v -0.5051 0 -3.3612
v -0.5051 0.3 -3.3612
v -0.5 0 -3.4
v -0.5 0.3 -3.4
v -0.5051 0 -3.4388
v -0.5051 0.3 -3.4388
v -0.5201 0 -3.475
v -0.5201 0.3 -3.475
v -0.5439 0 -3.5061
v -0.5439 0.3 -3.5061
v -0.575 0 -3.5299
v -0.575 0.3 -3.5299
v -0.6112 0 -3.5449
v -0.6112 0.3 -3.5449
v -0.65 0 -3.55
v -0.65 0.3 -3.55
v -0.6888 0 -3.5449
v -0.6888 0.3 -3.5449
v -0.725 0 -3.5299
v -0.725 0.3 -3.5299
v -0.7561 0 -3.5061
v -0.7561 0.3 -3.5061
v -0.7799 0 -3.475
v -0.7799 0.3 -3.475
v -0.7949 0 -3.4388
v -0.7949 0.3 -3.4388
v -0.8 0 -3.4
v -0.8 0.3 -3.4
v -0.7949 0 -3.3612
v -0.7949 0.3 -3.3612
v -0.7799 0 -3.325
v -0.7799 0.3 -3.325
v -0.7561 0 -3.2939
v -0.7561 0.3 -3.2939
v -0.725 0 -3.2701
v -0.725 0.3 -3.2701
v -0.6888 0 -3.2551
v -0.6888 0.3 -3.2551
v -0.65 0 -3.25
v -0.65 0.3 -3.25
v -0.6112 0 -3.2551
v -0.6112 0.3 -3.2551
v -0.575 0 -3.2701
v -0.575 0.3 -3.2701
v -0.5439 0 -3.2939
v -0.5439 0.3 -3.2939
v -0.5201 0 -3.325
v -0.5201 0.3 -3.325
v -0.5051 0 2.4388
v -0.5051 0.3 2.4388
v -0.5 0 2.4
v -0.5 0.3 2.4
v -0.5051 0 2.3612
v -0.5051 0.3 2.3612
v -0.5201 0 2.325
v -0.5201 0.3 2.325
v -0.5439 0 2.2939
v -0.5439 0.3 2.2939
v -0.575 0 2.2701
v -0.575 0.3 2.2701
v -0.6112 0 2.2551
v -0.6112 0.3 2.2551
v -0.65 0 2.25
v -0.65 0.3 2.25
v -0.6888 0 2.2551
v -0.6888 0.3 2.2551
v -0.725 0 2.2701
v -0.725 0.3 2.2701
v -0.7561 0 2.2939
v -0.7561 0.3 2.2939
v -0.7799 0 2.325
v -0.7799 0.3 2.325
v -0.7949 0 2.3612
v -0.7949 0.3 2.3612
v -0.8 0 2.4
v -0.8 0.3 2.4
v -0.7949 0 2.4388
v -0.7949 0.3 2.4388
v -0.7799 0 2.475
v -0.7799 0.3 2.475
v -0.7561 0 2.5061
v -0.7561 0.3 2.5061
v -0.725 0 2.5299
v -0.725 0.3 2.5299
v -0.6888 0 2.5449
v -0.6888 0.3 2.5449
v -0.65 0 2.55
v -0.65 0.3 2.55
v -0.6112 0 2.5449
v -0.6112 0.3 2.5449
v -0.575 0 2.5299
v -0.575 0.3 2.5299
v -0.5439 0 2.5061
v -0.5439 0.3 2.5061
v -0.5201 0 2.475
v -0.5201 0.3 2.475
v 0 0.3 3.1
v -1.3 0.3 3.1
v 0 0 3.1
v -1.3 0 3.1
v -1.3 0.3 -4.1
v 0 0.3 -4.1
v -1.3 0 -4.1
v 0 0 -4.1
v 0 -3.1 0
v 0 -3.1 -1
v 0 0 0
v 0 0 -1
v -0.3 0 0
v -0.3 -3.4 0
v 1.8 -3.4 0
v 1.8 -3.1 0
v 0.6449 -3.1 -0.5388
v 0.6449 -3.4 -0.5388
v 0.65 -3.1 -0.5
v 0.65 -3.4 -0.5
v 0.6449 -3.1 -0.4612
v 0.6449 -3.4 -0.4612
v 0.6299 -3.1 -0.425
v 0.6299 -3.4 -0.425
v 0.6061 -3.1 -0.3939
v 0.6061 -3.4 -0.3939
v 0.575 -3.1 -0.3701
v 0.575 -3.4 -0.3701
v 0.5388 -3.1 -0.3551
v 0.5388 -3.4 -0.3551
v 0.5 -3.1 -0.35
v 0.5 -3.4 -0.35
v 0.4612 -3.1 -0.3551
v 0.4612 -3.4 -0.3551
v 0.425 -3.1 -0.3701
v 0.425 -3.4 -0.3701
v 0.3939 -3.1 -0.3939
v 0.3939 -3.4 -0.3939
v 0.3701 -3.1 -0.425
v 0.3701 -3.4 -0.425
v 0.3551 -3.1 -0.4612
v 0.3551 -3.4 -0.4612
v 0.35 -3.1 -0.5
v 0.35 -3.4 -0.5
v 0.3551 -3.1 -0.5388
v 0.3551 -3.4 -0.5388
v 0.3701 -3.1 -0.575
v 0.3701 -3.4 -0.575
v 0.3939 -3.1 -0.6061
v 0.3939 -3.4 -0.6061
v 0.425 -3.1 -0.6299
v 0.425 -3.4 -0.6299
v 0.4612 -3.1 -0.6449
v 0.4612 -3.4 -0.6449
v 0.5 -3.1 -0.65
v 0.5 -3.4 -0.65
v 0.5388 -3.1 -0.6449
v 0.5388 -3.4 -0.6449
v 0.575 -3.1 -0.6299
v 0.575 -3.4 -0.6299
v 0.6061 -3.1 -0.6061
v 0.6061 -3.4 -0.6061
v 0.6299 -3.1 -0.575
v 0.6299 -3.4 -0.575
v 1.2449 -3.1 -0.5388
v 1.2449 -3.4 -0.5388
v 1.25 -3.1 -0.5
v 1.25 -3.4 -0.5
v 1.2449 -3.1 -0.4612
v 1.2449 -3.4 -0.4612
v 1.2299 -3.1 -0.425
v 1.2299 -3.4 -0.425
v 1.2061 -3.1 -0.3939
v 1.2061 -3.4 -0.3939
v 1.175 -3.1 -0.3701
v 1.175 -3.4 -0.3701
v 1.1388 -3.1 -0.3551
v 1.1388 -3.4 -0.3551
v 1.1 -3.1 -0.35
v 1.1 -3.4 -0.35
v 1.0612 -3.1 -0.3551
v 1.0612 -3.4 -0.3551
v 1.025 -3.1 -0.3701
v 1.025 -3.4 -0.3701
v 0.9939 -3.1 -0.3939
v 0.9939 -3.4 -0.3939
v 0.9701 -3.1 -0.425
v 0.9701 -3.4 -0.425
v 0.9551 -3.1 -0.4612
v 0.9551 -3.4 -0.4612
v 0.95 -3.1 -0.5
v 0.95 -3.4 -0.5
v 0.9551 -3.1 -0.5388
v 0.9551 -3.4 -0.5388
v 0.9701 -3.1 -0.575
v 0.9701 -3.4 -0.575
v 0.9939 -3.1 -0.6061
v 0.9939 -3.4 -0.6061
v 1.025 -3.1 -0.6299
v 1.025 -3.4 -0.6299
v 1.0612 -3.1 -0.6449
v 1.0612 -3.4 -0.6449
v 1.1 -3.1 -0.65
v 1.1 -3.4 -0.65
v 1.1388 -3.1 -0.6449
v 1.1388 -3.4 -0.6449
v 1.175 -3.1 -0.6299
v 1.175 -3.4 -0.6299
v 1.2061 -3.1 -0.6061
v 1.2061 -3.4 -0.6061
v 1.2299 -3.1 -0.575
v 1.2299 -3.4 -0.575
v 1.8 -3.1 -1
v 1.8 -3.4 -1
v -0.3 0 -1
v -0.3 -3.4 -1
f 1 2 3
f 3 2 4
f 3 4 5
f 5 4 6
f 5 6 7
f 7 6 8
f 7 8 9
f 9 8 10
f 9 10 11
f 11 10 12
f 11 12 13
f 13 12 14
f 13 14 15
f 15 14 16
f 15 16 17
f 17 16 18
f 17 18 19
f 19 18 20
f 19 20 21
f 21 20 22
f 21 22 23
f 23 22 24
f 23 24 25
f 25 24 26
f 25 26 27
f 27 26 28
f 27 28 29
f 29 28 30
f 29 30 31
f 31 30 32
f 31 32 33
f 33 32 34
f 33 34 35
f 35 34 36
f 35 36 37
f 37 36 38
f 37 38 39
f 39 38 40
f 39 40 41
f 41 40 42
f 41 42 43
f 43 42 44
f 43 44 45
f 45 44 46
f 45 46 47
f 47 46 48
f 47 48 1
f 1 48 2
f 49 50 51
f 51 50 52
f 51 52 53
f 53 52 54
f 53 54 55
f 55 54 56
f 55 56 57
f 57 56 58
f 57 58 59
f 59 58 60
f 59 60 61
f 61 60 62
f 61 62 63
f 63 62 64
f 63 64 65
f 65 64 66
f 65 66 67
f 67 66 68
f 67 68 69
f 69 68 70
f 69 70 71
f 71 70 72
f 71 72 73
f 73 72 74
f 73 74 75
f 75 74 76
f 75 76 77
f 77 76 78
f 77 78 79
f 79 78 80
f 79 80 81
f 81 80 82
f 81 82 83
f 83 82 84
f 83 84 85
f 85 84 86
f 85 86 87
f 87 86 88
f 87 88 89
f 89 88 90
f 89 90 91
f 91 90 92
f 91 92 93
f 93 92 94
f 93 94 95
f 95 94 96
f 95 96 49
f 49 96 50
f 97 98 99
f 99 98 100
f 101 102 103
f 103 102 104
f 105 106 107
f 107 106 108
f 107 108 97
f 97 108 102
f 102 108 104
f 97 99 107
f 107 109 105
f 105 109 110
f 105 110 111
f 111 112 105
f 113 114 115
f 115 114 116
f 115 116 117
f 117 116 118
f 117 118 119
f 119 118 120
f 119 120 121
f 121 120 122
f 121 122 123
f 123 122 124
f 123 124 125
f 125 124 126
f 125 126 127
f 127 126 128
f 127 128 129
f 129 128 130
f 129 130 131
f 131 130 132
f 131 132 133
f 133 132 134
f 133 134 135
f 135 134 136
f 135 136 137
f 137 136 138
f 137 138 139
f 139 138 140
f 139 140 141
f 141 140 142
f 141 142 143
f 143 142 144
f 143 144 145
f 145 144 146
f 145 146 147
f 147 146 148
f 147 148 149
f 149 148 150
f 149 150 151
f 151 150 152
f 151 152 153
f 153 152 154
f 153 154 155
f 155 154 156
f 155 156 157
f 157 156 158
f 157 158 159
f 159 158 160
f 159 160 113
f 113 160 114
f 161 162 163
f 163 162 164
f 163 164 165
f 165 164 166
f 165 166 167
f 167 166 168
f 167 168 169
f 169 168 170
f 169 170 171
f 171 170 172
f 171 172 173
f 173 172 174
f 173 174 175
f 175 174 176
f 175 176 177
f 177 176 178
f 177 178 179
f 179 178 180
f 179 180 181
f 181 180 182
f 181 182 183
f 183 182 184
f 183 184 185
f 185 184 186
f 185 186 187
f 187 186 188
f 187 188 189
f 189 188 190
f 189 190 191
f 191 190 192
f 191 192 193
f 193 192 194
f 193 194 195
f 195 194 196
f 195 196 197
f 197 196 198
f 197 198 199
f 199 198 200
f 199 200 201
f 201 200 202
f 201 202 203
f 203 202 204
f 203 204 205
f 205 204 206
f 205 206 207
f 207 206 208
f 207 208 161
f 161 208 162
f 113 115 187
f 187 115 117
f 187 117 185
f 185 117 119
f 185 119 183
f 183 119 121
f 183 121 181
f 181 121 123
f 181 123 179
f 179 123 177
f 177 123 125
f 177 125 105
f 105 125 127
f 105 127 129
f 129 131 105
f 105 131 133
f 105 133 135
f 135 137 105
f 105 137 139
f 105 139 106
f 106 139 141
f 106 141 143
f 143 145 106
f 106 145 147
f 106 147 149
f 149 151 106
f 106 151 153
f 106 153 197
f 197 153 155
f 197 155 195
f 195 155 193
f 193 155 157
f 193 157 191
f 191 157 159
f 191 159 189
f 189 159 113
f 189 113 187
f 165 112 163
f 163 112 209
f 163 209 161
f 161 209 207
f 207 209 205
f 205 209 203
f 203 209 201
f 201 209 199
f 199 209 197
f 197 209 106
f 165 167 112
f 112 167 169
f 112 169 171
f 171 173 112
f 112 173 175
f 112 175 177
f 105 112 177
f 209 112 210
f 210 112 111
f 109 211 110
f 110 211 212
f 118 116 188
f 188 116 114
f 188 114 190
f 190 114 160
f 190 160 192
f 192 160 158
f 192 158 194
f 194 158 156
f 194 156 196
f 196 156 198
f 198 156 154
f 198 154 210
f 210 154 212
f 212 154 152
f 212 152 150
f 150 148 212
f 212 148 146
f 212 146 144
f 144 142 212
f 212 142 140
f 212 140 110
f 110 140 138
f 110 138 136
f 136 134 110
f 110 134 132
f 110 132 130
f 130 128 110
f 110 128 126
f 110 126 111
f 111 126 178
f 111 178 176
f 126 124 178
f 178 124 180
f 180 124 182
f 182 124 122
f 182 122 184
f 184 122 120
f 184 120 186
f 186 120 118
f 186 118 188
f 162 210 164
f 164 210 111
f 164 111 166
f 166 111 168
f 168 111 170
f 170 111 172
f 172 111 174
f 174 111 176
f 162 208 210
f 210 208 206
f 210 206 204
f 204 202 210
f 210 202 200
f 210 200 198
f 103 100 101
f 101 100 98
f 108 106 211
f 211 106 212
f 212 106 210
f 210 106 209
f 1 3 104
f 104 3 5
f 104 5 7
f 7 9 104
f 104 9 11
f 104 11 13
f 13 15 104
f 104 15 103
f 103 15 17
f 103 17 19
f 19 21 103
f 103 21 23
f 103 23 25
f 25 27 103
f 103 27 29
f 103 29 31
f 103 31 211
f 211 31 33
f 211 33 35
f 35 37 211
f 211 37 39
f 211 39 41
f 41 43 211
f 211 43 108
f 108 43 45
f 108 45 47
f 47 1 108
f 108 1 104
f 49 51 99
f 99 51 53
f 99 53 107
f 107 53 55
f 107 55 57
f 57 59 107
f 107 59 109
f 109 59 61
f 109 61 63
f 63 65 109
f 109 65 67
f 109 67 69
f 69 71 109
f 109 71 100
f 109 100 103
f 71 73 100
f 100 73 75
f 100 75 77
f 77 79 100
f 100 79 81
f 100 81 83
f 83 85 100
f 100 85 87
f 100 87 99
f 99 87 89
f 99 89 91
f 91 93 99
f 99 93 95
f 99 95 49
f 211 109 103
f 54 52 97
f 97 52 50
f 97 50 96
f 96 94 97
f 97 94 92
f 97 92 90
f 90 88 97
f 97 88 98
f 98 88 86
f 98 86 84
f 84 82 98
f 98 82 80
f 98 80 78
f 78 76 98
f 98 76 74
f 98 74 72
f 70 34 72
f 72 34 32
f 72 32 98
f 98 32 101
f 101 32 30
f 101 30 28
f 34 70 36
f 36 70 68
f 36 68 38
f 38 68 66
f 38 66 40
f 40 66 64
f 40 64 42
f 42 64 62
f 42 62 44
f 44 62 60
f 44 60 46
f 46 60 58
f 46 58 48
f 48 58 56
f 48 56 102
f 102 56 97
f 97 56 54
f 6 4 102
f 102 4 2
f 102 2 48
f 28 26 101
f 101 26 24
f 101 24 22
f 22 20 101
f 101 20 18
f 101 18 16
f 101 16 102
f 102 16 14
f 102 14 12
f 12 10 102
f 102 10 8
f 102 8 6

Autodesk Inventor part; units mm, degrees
ref_plane "YZ Plane" through (0, 0, 0) normal (1, 0, 0) x (0, 1, 0)
ref_plane "XZ Plane" through (0, 0, 0) normal (0, 1, 0) x (-1, 0, 0)
ref_plane "XY Plane" through (0, 0, 0) normal (0, 0, 1) x (1, 0, 0)
sketch "Boceto1" plane through (0, 0, 0) normal (0, 1, 0) x (-1, 0, 0)
  circle A0 centre (0.65, -0.45) radius 0.15
  line L0 (0.3, 0) -> (1.3, 0)
  line L1 (1.3, 0) -> (1.3, -1)
  line L2 (1.3, -1) -> (0.3, -1)
  line L3 (0.3, -1) -> (0, -1)
  line L4 (0, -1) -> (0, 0)
  line L5 (0, 0) -> (0.3, 0)
extrude "Extrusión1" add sketch "Boceto1" along normal blind 0.3
sketch "Boceto2" plane through (0, 0, 0) normal (0, -1, 0) x (1, 0, 0)
  line L0 (0, -1) -> (0, 0)
  line L1 (-0.3, -1) -> (0, -1)
  line L2 (0, 0) -> (-0.3, 0)
  line L3 (-0.3, 0) -> (-0.3, -1)
  line L4 (0, 0) -> (0, -1) projected
  line L5 (-0.3, -1) -> (0, -1)
  line L6 (0, -1) -> (0, 0)
  line L7 (0, 0) -> (-0.3, 0)
  line L8 (-0.3, 0) -> (-0.3, -1)
extrude "Extrusión2" add sketch "Boceto2" along normal blind 3.4
sketch "Boceto3" plane through (0, 0.3, 0) normal (1, 0, 0) x (0, 0, -1)
  line L0 (1, 0) -> (1, -3.7) projected
  line L1 (0, 0) -> (1, 0) projected
  line L2 (0, 0) -> (0, -3.7) projected
  line L3 (1, -3.7) -> (0, -3.7) projected
  line L4 (0, 0) -> (0, -3.7) projected
  line L5 (0, -3.7) -> (0, -3.4)
  line L6 (0, -3.4) -> (1, -3.4)
  line L7 (1, -3.4) -> (1, -3.7)
  line L8 (1, -3.7) -> (0, -3.7)
  line L9 (0, -3.7) -> (0, -3.4)
  point P0 (0, -0.3)
  dimension "d4" = 0.3
extrude "Extrusión3" add sketch "Boceto3" along normal blind 1.8 contours L0 L3 L2 L6
sketch "Boceto4" plane through (0, -3.4, 0) normal (0, -1, 0) x (1, 0, 0)
  line L0 (-0.3, 0) -> (1.8, 0) projected
  line L1 (-0.3, 0) -> (-0.3, -1) projected
  line L2 (-0.3, -1) -> (1.8, -1) projected
  line L3 (1.8, 0) -> (1.8, -1) projected
  circle A0 centre (0.5, -0.5) radius 0.15
  circle A1 centre (-6.552, -4.409) radius 0.15
  circle A2 centre (-5.952, -4.409) radius 0.15
  line L4 (0.5, -0.5) -> (1.1, -0.5)
  circle A3 centre (1.1, -0.5) radius 0.15
  point P0 (0, 0)
  dimension "d7" = 0.3
  dimension "d18" = 0.3
  dimension "d19" = 0.3
  dimension "d21" = 0.3
extrude "Extrusión4" cut sketch "Boceto4" against normal blind 1 contours A0 | A3
sketch "Boceto6" plane through (0, 0.3, 0) normal (0, 1, 0) x (1, 0, 0)
  line L0 (-1.3, 1) -> (-1.3, 0) projected
  line L1 (-1.3, 0.5) -> (-1.3, 3.4)
  line L2 (0, 3.4) -> (0, -2.4)
  line L3 (-1.3, -2.4) -> (-1.3, 0.5)
  circle A0 centre (-0.65, -2.4) radius 0.15
  circle A1 centre (-0.65, 3.4) radius 0.15
  line L4 (0, 3.4) -> (0, 4.1)
  line L5 (0, 4.1) -> (-1.3, 4.1)
  line L6 (-1.3, 4.1) -> (-1.3, 3.4)
  line L7 (-1.3, -2.4) -> (-1.3, -3.1)
  line L8 (-1.3, -3.1) -> (0, -3.1)
  line L9 (0, -3.1) -> (0, -2.4)
  point P0 (0, 0)
  dimension "d22" = 2.9
  dimension "d23" = 5.8
  dimension "d24" = 1.3
  dimension "d25" = 0.3
  dimension "d26" = 0.3
  dimension "d28" = 0.7
extrude "Extrusión5" add sketch "Boceto6" against normal blind 0.3
properties part number "soporteOdroid"
